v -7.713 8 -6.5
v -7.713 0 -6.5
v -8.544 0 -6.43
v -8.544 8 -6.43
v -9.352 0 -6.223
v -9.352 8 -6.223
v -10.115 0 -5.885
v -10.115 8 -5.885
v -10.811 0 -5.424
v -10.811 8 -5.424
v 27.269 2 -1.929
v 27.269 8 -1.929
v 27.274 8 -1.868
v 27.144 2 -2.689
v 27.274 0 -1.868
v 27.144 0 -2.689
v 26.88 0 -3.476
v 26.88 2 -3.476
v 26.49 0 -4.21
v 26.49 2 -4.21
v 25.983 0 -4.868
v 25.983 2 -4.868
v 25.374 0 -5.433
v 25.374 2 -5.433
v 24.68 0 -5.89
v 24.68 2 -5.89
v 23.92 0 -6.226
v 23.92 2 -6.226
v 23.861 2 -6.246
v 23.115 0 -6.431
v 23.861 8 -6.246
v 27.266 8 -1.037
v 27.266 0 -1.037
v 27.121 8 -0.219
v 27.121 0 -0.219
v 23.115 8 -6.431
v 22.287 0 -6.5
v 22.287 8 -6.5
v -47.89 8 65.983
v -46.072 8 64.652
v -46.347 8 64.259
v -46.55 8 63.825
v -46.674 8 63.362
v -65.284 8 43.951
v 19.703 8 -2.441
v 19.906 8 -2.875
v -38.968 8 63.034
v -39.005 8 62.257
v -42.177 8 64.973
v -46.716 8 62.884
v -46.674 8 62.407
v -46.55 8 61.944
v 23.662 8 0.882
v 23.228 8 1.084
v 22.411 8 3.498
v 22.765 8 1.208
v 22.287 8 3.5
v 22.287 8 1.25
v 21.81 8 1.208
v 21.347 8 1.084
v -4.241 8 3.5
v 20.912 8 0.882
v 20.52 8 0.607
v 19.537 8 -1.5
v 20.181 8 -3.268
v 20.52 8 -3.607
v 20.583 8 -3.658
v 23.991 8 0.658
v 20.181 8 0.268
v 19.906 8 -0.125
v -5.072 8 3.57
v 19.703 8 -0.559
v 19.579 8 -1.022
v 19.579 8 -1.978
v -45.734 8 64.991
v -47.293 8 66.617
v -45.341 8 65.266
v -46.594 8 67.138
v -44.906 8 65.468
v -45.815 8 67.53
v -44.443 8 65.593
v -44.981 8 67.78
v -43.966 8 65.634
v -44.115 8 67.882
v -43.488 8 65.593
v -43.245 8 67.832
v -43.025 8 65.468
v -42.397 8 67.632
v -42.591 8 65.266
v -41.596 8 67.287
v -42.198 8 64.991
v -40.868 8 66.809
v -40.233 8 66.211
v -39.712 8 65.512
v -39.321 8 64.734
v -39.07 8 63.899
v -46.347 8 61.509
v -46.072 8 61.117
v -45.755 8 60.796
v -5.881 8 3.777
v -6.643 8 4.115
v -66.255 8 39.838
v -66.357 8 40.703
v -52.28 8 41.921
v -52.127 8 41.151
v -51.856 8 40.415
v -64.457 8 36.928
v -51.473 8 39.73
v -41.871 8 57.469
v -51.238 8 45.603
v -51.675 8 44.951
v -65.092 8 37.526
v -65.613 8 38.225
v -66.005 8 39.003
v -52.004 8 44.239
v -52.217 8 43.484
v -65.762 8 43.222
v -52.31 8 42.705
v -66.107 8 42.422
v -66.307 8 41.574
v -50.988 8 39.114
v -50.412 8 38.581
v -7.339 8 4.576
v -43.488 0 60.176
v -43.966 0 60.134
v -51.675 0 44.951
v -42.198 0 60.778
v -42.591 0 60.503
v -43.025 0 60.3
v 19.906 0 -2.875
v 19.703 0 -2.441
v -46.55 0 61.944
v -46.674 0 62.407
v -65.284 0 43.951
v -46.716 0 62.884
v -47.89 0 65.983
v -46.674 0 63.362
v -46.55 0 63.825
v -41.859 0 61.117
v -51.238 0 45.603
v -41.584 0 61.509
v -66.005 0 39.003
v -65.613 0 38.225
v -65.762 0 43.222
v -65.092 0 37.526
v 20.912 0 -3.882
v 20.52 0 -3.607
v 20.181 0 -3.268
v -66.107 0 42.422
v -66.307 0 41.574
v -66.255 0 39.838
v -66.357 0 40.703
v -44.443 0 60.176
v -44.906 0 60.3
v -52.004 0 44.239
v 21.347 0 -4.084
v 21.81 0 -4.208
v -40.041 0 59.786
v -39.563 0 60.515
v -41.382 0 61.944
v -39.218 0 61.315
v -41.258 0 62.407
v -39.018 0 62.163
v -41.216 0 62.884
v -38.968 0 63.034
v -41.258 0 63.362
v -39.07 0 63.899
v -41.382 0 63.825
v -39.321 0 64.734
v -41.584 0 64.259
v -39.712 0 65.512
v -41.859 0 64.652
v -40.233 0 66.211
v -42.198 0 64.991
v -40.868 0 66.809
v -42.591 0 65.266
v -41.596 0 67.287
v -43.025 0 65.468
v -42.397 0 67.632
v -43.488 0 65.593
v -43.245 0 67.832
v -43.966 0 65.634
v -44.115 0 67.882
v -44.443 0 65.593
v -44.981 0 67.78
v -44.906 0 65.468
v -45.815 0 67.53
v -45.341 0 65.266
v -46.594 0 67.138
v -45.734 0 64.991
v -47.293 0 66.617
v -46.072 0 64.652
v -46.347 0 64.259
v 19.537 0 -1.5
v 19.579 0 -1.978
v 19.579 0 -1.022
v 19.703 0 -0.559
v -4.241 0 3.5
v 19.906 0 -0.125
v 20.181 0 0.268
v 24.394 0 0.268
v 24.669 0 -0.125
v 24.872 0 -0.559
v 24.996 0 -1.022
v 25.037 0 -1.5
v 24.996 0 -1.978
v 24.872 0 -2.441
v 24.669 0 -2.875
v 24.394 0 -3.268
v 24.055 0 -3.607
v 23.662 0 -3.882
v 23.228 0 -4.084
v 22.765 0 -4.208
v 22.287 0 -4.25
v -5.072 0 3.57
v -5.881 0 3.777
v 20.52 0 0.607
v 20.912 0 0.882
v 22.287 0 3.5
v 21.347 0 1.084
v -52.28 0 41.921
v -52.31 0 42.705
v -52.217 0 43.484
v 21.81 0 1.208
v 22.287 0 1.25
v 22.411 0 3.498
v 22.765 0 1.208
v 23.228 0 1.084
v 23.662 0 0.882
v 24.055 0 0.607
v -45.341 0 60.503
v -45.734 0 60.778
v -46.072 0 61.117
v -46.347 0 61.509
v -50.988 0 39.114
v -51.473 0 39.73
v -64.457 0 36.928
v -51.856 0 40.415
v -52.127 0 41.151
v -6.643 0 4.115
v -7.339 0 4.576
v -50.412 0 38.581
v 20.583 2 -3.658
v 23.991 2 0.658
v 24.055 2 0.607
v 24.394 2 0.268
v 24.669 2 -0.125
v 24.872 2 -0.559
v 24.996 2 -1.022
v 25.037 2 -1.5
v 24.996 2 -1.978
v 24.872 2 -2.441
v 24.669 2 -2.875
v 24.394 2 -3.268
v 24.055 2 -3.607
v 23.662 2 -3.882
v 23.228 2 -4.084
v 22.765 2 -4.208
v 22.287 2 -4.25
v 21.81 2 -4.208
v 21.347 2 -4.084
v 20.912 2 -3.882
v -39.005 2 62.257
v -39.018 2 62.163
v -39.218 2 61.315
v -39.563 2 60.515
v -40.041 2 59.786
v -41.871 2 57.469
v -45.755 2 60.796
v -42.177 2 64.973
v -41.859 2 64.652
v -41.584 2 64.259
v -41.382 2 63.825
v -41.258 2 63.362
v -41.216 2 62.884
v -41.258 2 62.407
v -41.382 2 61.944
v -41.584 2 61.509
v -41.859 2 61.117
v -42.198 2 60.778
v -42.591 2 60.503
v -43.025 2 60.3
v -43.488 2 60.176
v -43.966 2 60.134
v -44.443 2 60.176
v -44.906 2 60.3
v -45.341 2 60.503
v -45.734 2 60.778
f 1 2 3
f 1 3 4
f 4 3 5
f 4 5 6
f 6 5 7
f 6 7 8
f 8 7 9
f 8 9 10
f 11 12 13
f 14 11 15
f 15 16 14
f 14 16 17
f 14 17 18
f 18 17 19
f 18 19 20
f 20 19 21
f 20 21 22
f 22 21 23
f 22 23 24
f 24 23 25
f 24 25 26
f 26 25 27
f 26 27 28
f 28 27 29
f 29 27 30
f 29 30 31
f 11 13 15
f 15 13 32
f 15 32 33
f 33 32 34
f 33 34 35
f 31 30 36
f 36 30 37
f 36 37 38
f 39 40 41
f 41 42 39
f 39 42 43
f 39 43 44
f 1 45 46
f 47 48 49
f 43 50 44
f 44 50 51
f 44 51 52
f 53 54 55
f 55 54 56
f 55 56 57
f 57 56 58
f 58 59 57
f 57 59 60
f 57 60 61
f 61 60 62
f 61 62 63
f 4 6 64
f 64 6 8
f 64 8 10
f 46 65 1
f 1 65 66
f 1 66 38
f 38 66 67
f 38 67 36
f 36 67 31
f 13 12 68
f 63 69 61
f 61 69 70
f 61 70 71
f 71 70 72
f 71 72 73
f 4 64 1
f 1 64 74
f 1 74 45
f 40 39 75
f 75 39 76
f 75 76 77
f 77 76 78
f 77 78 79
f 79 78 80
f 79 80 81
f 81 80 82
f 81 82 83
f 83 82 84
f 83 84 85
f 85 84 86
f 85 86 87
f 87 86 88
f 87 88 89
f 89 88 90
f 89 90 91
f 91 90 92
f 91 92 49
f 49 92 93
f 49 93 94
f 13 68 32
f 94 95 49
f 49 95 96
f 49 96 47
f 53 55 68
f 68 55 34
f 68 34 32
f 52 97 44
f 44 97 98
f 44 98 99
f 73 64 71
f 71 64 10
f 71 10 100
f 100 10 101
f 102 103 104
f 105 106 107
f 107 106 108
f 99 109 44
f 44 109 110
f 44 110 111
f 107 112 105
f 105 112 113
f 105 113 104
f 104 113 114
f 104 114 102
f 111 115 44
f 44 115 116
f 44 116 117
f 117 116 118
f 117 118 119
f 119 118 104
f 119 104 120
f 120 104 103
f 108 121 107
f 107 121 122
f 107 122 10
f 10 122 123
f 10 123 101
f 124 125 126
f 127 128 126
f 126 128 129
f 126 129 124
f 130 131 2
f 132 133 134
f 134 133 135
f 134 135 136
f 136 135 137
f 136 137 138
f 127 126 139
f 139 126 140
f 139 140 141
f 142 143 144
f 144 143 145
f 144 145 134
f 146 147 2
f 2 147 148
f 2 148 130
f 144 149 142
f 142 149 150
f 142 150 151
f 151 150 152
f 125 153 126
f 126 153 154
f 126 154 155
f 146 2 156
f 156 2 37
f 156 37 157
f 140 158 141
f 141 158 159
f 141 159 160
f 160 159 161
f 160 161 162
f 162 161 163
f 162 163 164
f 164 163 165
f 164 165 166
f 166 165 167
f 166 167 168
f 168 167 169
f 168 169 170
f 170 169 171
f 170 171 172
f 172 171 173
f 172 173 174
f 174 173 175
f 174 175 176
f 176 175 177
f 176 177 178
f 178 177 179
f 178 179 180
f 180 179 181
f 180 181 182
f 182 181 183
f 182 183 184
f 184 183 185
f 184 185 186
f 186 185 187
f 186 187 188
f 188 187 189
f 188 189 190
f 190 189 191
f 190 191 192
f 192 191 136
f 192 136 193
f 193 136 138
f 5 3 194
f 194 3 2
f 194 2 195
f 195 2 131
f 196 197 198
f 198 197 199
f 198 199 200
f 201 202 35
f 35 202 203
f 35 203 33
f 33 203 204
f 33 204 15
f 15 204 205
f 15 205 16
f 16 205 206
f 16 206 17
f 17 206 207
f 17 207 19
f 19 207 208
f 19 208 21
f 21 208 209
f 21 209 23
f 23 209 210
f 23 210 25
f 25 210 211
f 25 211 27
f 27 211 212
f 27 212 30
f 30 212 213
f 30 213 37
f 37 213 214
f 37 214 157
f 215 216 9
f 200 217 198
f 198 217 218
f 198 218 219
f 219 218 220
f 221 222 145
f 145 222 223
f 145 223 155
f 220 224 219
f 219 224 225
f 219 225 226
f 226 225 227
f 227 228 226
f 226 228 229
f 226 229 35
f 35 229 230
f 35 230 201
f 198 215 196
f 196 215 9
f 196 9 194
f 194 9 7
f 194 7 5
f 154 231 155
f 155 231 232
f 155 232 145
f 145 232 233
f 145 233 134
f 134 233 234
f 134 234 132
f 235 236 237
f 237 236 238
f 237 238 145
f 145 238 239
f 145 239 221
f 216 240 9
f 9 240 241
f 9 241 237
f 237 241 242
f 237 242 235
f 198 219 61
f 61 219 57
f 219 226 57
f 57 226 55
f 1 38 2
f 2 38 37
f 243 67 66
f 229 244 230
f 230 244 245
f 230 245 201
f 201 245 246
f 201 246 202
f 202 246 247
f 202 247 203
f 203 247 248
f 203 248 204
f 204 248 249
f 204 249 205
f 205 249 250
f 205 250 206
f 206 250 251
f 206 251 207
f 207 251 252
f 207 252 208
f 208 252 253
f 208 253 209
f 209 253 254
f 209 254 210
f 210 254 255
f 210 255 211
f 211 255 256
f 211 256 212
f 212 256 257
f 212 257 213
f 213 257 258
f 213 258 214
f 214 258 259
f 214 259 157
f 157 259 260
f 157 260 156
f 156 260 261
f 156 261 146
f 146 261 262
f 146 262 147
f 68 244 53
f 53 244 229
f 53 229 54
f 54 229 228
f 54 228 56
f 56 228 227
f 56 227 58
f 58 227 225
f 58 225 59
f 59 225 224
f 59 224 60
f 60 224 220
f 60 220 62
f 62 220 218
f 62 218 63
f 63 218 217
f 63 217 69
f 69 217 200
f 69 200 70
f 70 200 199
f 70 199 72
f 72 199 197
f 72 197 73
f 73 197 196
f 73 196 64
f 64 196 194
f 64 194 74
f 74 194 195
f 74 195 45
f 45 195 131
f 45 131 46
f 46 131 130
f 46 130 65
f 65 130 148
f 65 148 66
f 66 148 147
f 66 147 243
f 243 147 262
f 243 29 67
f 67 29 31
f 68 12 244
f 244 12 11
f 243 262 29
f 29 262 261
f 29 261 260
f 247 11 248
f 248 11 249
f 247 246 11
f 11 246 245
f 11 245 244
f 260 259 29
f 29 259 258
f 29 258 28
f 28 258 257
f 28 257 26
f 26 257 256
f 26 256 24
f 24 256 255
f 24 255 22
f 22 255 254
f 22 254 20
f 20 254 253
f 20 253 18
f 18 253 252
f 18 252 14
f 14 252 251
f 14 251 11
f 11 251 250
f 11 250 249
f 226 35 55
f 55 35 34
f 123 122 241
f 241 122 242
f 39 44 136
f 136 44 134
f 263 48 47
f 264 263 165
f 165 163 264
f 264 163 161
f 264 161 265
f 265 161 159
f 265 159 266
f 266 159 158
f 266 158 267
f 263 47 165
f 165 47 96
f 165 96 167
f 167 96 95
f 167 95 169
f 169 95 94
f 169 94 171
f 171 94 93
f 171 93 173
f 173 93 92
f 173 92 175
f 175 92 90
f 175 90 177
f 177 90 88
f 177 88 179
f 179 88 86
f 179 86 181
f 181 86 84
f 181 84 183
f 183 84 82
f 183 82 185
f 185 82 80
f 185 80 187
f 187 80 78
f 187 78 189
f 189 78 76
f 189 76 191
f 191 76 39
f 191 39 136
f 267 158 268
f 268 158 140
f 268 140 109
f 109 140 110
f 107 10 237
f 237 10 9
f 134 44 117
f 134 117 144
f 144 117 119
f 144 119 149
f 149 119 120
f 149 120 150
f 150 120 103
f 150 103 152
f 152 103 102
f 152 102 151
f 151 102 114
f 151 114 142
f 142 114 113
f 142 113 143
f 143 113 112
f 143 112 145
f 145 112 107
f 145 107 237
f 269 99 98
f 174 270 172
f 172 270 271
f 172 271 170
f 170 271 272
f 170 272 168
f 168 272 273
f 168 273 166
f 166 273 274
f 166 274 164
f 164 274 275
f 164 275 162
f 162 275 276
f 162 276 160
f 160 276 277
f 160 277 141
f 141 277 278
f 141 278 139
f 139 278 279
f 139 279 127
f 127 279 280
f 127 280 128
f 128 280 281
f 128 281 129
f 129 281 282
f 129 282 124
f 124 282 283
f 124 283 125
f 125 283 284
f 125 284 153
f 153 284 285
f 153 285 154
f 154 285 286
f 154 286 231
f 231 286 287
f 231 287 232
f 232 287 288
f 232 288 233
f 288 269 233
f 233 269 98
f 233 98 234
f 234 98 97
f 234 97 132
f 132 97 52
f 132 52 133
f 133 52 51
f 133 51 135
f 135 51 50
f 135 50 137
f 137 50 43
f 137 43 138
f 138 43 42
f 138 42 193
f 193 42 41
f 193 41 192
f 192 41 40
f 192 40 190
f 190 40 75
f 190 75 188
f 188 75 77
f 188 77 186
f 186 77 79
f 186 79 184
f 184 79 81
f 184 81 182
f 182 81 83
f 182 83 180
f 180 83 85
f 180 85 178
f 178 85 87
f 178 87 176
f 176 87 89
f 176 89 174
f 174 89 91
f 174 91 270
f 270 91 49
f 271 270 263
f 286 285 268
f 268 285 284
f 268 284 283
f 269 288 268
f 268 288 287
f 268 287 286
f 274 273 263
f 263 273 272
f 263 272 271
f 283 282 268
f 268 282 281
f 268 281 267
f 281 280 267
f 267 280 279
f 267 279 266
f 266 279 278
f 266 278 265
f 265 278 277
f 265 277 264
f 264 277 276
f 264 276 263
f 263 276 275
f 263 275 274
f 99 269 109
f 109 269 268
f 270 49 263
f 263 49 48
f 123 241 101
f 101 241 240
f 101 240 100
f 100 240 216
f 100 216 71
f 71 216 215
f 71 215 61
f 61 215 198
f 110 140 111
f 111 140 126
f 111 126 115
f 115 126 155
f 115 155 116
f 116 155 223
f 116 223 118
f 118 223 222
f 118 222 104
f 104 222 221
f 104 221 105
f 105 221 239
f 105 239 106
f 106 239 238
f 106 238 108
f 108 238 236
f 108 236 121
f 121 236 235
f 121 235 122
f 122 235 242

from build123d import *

# Parameters (mm, degrees)
SKETCH1_R           = 2.75
BOSS_EXTRUDE1_DEPTH = 8
CUT_EXTRUDE1_DEPTH  = 6
CUT_EXTRUDE2_DEPTH  = 30.169438933
BOSS_EXTRUDE2_START = -8
SKETCH4_R           = 2.75
BOSS_EXTRUDE2_DEPTH = 8
CUT_EXTRUDE3_DEPTH  = 6
FILLET1_R           = 5


with BuildPart() as part:
    # Sketch1 → Boss-Extrude1 (new body)
    with BuildSketch(Plane(origin=(0, 0, 0), x_dir=(1, 0, 0), z_dir=(0, 1, 0))):
        with BuildLine():
            Line((-7.712527276, 6.5), (22.287472724, 6.5))
            ThreePointArc((22.287472724, 6.5), (27.287472724, 1.5), (22.287472724, -3.5))
            Line((22.287472724, -3.5), (-7.712527276, -3.5))
            ThreePointArc((-7.712527276, -3.5), (-12.712527276, 1.5), (-7.712527276, 6.5))
        make_face()
        with Locations(Location((22.287472724, 1.5, 0), (0, 0, 270))):
            Circle(SKETCH1_R, mode=Mode.SUBTRACT)
    extrude(amount=BOSS_EXTRUDE1_DEPTH)

    # Sketch2 → Cut-Extrude1 (cut)
    with BuildSketch(Plane(origin=(0, 8, 0), x_dir=(1, 0, 0), z_dir=(0, 1, 0))):
        Polygon((20.58345093, 3.658427605), (23.991494517, -0.658427605), (33.922344634, 7.181717223), (30.514301047, 11.498572433), align=None)
    extrude(amount=-CUT_EXTRUDE1_DEPTH, mode=Mode.SUBTRACT)

    # Sketch3 → Cut-Extrude2 (cut, through all)
    with BuildSketch(Plane(origin=(0, 8, 0), x_dir=(1, 0, 0), z_dir=(0, 1, 0))):
        Polygon((19.607061, -5.712417018), (21.868852578, -8.577353017), (34.080402114, 1.063343984), (31.818610536, 3.928279983), align=None)
    extrude(amount=-CUT_EXTRUDE2_DEPTH, mode=Mode.SUBTRACT)

    # Sketch4 → Boss-Extrude2 (add)
    with BuildSketch(Plane(origin=(0, 8, 0), x_dir=(1, 0, 0), z_dir=(0, 1, 0)).offset(BOSS_EXTRUDE2_START)):
        with BuildLine():
            Line((-4.614305833, -2.424413828), (-54.336629031, -41.678879507))
            Line((-54.336629031, -41.678879507), (-40.041435295, -59.786124909))
            ThreePointArc((-40.041435295, -59.786124909), (-40.86762768, -66.808760179), (-47.89026295, -65.982567794))
            Line((-47.89026295, -65.982567794), (-65.28367813, -43.950908565))
            ThreePointArc((-65.28367813, -43.950908565), (-66.325017324, -40.268480884), (-64.457485745, -36.928273294))
            Line((-64.457485745, -36.928273294), (-10.810748719, 5.424413828))
            ThreePointArc((-10.810748719, 5.424413828), (-3.788113448, 4.598221443), (-4.614305833, -2.424413828))
        make_face()
        with Locations(Location((-43.965849122, -62.884346351, 0), (0, 0, 270))):
            Circle(SKETCH4_R, mode=Mode.SUBTRACT)
    extrude(amount=BOSS_EXTRUDE2_DEPTH)

    # Sketch5 → Cut-Extrude3 (cut)
    with BuildSketch(Plane(origin=(0, 8, 0), x_dir=(1, 0, 0), z_dir=(0, 1, 0))):
        Polygon((-45.754712001, -60.795693771), (-42.176986244, -64.972998932), (-32.718063171, -56.871739527), (-36.295788929, -52.694434367), align=None)
    extrude(amount=-CUT_EXTRUDE3_DEPTH, mode=Mode.SUBTRACT)

    # Fillet1
    fillet1_edges = [part.edges().sort_by_distance(p)[0] for p in [
        (-5.976714985, 4, 3.5),
        (-54.336629031, 4, 41.678879507),
    ]]
    fillet(fillet1_edges, radius=FILLET1_R)


solid = part.part
